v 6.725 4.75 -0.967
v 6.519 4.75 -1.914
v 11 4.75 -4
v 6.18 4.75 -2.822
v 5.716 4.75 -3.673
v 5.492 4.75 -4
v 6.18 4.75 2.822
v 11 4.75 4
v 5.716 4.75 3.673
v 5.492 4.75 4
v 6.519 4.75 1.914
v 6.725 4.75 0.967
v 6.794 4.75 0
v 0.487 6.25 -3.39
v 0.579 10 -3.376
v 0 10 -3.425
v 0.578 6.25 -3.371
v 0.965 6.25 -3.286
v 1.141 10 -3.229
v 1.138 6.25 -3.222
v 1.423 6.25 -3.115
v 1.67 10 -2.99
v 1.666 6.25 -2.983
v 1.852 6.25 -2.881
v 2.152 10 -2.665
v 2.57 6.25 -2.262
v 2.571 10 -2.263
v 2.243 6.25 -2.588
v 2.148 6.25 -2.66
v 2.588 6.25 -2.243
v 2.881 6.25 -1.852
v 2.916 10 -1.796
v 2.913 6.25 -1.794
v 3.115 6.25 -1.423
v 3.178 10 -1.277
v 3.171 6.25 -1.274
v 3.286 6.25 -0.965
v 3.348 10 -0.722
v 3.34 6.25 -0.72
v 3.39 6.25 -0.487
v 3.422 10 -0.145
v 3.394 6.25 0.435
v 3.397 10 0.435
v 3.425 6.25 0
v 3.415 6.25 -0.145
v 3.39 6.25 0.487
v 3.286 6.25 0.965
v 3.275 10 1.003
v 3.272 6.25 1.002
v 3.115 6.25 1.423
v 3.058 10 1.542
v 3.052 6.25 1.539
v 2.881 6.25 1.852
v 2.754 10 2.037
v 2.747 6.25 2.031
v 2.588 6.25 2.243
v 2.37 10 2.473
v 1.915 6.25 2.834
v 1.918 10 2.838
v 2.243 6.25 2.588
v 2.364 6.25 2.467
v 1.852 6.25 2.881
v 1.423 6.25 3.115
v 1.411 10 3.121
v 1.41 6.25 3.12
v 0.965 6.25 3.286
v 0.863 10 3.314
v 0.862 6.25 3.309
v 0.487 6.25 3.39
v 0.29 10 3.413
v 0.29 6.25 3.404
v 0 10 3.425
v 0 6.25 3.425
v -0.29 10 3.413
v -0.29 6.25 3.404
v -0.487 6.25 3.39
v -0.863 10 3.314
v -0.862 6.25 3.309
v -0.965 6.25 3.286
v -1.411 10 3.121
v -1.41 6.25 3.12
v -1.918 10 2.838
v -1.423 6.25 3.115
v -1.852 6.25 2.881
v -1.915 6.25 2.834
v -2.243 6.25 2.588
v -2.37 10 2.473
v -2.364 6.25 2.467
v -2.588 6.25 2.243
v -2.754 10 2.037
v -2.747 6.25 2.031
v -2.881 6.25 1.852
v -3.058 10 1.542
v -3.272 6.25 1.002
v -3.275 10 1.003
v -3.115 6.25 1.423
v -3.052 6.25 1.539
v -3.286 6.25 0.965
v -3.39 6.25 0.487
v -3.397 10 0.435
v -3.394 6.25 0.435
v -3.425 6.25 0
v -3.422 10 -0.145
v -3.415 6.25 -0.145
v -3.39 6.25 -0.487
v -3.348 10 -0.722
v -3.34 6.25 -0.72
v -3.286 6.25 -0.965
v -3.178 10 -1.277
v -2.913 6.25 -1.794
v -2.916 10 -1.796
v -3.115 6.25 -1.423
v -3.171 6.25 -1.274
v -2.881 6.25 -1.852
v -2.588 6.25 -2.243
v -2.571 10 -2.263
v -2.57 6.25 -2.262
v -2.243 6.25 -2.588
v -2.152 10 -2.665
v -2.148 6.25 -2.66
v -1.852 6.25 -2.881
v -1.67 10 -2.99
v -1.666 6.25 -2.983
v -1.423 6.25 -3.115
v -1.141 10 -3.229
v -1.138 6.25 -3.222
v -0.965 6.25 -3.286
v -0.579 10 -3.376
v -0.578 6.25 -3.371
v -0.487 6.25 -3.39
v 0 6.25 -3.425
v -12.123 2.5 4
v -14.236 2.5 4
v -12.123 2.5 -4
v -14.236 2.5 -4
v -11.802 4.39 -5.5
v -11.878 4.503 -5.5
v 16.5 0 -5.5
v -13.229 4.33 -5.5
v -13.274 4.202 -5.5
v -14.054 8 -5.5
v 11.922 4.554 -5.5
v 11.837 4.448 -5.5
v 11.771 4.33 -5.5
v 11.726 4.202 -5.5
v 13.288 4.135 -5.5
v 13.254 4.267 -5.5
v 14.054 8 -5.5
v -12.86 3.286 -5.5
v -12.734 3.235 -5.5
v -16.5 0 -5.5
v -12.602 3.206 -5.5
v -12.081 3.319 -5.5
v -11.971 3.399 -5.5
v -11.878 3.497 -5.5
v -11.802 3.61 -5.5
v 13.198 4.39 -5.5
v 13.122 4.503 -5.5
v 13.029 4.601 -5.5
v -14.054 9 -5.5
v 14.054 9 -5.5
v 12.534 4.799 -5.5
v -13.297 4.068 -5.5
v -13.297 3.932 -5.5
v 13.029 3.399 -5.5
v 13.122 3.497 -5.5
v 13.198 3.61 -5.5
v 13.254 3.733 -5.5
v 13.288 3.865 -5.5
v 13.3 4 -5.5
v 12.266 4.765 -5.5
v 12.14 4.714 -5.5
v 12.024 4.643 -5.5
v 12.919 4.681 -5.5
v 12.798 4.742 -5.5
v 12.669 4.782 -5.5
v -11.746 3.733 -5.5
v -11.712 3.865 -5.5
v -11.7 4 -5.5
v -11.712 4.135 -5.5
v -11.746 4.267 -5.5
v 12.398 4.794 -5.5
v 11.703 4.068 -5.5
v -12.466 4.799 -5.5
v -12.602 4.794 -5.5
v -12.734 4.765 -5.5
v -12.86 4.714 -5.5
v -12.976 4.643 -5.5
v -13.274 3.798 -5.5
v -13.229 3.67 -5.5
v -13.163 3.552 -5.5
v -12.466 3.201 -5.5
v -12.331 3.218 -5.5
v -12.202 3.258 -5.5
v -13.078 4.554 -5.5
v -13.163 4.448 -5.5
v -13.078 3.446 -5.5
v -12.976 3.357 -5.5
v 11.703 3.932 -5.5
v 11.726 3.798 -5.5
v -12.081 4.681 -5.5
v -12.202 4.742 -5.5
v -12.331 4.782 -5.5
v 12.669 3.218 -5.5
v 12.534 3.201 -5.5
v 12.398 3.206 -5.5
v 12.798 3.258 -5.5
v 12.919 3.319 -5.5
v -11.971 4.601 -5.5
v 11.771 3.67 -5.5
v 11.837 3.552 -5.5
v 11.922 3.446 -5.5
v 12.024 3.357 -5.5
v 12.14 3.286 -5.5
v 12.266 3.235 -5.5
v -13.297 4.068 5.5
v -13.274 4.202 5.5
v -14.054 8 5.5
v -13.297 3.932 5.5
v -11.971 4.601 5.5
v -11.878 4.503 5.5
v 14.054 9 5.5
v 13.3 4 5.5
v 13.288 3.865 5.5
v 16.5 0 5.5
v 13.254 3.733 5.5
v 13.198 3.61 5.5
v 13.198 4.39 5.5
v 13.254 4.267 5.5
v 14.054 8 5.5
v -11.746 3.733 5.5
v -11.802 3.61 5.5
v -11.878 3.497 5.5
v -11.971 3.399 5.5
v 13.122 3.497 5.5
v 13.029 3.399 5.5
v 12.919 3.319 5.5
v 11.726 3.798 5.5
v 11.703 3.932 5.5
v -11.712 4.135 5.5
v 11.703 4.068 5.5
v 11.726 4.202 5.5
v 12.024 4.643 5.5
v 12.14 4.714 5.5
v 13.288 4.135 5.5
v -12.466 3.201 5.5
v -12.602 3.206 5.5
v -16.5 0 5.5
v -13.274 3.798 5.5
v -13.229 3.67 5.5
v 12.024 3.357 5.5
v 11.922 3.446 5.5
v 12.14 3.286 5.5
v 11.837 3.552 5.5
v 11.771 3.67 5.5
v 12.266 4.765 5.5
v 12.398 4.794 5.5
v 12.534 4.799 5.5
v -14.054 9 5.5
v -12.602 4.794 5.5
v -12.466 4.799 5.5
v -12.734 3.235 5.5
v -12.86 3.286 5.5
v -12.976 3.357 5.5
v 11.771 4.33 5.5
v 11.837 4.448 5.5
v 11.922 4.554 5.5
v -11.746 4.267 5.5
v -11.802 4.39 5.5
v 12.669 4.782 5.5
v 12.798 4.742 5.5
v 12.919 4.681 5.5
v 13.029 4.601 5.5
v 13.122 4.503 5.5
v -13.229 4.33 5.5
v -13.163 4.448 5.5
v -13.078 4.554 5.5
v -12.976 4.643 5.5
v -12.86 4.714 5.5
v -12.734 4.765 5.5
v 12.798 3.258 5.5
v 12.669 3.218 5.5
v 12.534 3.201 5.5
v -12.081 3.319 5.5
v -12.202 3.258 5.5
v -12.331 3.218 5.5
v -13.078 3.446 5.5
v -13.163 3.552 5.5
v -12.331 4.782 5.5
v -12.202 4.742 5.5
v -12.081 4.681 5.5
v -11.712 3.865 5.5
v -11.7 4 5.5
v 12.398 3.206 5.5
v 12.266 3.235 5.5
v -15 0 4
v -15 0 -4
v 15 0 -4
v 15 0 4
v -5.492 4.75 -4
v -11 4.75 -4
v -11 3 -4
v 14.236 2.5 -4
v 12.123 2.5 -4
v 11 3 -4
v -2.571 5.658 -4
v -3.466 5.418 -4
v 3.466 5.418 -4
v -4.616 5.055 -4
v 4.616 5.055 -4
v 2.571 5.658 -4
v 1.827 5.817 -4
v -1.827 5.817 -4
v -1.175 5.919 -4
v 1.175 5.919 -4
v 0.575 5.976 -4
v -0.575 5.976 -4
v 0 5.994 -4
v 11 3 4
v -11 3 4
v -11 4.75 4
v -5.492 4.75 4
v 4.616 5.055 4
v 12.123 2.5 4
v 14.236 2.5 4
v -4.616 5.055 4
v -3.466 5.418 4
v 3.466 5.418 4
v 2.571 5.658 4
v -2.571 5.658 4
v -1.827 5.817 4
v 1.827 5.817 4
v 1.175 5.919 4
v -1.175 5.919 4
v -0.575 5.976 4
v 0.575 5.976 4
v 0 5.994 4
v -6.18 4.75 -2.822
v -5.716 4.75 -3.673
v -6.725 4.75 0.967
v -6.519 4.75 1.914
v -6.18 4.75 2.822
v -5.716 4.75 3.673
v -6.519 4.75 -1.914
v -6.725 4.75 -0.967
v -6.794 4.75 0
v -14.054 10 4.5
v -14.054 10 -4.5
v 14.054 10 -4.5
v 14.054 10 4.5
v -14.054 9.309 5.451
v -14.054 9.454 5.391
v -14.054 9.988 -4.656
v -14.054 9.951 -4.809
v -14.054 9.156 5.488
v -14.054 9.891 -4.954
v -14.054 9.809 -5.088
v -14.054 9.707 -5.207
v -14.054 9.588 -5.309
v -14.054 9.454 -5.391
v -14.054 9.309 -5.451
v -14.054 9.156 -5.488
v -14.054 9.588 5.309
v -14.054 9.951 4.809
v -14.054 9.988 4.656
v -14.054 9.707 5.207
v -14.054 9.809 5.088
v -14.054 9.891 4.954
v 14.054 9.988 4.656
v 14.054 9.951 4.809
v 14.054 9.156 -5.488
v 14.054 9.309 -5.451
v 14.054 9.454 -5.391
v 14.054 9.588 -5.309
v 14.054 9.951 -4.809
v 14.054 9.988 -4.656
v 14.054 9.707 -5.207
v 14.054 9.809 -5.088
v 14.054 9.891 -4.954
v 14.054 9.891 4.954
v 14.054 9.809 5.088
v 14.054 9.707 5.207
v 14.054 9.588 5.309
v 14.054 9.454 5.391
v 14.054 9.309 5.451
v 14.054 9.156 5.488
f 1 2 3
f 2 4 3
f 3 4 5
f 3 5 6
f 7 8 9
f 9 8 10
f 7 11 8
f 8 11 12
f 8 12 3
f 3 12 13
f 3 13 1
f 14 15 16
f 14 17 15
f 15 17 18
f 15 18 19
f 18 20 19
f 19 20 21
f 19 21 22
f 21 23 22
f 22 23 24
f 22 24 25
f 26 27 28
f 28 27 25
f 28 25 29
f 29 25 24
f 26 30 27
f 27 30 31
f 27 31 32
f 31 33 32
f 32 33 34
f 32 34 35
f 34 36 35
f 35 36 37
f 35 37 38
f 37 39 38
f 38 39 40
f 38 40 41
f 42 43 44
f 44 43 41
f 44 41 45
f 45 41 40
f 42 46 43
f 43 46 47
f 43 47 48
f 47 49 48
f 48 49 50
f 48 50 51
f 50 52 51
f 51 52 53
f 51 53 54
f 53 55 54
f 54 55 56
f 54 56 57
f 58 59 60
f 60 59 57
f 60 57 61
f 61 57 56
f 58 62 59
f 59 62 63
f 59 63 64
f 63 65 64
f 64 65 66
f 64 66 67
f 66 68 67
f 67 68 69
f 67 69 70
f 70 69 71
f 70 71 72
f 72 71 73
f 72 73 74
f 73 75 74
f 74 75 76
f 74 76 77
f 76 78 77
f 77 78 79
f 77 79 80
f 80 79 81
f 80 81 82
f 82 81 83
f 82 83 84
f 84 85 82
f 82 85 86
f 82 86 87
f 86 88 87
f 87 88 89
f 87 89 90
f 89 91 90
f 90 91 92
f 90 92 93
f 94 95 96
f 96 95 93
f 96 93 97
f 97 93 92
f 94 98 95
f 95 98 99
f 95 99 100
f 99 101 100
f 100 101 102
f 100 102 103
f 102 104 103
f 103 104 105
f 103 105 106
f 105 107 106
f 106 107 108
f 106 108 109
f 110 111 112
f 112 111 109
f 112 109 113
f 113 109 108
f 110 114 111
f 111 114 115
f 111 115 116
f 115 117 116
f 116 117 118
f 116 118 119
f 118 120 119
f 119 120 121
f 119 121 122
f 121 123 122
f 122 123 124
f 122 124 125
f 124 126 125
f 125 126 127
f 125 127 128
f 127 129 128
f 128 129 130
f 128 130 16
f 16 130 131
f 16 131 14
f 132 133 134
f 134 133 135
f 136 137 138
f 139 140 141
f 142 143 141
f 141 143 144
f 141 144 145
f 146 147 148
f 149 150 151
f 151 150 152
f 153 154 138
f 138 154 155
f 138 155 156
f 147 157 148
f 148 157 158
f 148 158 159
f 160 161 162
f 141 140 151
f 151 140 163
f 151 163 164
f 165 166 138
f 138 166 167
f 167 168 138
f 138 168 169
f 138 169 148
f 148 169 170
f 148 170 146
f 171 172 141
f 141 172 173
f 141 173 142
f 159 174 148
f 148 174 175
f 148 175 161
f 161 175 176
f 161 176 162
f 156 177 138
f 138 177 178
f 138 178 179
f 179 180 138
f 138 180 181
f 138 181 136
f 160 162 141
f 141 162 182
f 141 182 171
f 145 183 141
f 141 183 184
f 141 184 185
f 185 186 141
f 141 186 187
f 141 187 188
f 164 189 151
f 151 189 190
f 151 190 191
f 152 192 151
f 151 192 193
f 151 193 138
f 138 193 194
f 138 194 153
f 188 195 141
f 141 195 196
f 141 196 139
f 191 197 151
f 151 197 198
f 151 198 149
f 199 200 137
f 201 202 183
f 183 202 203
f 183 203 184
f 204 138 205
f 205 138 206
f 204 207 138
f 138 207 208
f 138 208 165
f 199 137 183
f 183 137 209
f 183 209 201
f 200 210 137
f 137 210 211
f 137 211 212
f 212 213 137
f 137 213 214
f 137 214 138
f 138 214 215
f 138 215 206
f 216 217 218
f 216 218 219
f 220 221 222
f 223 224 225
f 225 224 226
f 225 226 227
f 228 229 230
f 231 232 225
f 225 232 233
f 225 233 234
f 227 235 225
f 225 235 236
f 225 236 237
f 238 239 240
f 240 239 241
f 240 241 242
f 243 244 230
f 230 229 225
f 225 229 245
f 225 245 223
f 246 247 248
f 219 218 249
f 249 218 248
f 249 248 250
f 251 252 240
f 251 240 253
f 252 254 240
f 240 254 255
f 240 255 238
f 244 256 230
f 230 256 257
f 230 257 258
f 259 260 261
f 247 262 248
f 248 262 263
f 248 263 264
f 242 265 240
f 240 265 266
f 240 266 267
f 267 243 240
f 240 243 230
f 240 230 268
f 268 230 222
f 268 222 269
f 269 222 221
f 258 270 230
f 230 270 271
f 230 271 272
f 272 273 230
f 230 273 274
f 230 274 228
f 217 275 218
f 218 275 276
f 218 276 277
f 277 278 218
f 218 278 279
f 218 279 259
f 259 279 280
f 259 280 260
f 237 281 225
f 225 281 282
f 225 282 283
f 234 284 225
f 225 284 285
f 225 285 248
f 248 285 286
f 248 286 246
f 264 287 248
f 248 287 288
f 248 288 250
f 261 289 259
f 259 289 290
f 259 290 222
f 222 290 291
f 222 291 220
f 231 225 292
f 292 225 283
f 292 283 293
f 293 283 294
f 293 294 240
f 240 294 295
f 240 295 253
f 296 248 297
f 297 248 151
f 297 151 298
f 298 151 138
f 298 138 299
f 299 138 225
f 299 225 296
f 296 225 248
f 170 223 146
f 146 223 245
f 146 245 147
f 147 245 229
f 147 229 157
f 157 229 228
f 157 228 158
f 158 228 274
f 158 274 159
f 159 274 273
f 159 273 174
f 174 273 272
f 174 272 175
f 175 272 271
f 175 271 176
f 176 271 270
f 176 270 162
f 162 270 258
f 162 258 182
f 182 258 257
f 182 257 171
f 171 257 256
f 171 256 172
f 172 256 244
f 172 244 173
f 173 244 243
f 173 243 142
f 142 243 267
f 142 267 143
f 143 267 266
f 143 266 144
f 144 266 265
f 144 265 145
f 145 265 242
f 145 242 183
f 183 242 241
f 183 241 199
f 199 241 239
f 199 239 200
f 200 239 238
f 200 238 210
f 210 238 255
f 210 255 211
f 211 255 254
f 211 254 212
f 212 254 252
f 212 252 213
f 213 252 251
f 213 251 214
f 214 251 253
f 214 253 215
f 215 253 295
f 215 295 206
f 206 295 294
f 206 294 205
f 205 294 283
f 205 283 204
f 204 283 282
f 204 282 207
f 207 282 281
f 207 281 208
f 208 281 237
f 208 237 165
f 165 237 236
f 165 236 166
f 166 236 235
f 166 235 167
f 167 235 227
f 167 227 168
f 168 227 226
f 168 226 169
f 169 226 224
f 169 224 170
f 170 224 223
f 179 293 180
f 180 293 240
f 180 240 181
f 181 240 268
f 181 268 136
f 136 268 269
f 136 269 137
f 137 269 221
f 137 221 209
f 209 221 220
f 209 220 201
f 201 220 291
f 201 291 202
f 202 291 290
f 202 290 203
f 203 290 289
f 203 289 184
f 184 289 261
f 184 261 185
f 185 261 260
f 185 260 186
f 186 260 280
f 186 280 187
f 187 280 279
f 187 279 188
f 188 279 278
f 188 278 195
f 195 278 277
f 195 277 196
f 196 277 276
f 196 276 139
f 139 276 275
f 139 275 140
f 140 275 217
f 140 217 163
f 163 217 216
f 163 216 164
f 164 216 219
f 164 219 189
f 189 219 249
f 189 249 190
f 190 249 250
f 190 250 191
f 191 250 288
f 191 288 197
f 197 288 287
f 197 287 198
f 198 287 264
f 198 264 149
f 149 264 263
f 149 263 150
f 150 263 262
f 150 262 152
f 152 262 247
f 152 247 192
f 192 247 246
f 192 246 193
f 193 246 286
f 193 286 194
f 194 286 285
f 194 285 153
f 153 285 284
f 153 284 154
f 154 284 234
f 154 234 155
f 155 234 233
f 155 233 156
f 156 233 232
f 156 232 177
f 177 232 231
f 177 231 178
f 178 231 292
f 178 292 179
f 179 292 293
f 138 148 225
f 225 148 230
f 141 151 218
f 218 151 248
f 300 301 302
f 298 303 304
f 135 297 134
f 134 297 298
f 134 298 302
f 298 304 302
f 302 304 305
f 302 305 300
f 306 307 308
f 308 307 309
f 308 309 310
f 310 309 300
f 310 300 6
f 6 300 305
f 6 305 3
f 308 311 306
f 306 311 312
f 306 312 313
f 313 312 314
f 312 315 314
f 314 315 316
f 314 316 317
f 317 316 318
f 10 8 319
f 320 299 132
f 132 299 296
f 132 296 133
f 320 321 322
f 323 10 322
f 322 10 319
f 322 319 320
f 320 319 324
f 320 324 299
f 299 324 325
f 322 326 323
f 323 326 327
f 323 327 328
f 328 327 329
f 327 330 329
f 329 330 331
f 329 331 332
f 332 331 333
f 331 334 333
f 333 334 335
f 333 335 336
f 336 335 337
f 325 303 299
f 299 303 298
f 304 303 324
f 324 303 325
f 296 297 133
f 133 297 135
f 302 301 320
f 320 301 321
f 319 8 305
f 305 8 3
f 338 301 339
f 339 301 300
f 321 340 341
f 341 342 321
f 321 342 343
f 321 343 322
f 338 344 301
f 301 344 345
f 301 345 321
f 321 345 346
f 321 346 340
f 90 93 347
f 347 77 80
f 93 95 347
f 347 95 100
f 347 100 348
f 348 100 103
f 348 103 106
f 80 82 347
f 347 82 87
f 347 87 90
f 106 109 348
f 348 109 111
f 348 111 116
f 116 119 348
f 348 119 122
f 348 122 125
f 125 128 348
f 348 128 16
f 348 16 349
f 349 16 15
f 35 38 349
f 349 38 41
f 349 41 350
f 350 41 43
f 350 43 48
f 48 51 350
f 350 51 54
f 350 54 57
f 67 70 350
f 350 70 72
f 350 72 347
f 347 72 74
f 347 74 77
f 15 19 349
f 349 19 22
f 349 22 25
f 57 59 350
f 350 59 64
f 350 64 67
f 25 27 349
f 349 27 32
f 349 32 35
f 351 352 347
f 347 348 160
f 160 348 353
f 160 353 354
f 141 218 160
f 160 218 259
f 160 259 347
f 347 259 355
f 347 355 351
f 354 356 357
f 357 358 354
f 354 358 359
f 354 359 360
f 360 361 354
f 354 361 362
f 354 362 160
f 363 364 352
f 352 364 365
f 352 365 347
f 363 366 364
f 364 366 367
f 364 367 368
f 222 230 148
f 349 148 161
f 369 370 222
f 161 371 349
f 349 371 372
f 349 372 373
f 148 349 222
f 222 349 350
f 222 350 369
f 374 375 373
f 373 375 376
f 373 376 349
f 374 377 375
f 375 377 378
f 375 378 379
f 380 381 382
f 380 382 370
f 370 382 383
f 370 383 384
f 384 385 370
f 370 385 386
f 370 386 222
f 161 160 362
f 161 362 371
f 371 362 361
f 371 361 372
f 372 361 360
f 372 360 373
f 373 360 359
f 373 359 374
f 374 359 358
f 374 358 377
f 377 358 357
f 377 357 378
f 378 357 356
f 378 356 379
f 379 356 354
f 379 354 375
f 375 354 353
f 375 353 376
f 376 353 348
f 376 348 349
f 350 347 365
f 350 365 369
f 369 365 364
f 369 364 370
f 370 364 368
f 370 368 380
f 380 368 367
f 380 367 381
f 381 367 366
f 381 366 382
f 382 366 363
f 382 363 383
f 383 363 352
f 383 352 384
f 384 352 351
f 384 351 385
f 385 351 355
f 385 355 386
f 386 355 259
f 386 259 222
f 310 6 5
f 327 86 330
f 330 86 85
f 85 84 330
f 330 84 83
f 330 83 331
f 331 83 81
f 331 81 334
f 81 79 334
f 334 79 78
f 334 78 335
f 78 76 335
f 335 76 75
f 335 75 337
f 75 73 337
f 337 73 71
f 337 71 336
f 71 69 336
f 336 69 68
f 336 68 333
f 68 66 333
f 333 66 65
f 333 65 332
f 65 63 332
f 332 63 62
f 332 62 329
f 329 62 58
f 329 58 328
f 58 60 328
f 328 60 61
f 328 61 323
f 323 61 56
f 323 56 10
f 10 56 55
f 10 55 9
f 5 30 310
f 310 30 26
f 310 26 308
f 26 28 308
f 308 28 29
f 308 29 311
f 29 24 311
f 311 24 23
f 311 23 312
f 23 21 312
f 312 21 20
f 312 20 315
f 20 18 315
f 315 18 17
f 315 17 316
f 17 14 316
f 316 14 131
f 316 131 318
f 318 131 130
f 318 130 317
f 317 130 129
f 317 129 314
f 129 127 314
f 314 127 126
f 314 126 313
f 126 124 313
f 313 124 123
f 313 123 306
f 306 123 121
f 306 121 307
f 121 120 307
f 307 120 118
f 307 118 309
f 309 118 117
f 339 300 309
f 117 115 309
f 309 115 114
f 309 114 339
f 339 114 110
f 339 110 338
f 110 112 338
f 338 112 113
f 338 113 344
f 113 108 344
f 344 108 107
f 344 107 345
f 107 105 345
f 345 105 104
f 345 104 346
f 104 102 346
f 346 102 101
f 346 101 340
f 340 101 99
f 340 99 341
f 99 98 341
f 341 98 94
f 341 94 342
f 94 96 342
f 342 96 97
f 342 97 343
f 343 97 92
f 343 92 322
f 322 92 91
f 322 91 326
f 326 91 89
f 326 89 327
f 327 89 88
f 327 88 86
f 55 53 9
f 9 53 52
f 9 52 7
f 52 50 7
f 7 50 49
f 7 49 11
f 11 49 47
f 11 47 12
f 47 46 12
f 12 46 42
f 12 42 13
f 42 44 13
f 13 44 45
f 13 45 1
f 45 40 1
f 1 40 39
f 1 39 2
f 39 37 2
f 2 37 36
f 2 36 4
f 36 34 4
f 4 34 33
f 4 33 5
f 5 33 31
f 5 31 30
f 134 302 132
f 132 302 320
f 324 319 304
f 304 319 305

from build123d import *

# Parameters (mm, degrees)
SKETCH1_W                      = 33
SKETCH1_H                      = 11
SKETCH1_W_2                    = 30
SKETCH1_H_2                    = 8
BOSS_EXTRUDE1_DEPTH            = 8
SKETCH3_R                      = 0.8
CUT_EXTRUDE3_DEPTH             = 22.38340478
CUT_EXTRUDE5_REACH             = 21.144
SKETCH5_R                      = 3.425
CUT_EXTRUDE5_DIRECTION_2_DEPTH = 20.144189719
CUT_EXTRUDE4_DEPTH             = 22.38340478
CUT_EXTRUDE9_START             = -1.5
CUT_EXTRUDE9_DEPTH             = 8
SKETCH9_W                      = 22
SKETCH9_H                      = 8
CUT_EXTRUDE8_DEPTH             = 2.25
BOSS_EXTRUDE8_START            = 2
SKETCH12_W                     = 28.108309096
SKETCH12_H                     = 11
SKETCH12_R                     = 3.425
BOSS_EXTRUDE8_DEPTH            = 2
FILLET1_R                      = 1
CHAMFER1_SIZE                  = 1.5
CHAMFER1_SIZE_2                = 3.369055161
CHAMFER2_SIZE                  = 0.5
CHAMFER2_SIZE2                 = 1.123018387
CHAMFER3_SIZE                  = 0.5
CHAMFER3_SIZE2                 = 1.123018387


with BuildPart() as part:
    # Sketch1 → Boss-Extrude1 (new body)
    # profile 1 of 2: a face of its own
    with BuildSketch(Plane(origin=(0, 0, 0), x_dir=(1, 0, 0), z_dir=(0, 1, 0))):
        Rectangle(SKETCH1_W, SKETCH1_H)
        Rectangle(SKETCH1_W_2, SKETCH1_H_2, mode=Mode.SUBTRACT)
    # profile 2 of 2: a face of its own
    with BuildSketch(Plane(origin=(0, 0, 0), x_dir=(1, 0, 0), z_dir=(0, 1, 0))):
        Rectangle(SKETCH1_W_2, SKETCH1_H_2)
    extrude(amount=BOSS_EXTRUDE1_DEPTH)

    # Sketch3 → Cut-Extrude3 (cut, through all)
    with BuildSketch(Plane.XY.offset(5.5)):
        with Locations((-12.5, 4)):
            Circle(SKETCH3_R)
        with Locations((12.5, 4)):
            Circle(SKETCH3_R)
    extrude(amount=-CUT_EXTRUDE3_DEPTH, mode=Mode.SUBTRACT)

    # Sketch5 → Cut-Extrude5 (cut, up to next)
    with BuildSketch(Plane(origin=(0, 8, 0), x_dir=(1, 0, 0), z_dir=(0, 1, 0)), mode=Mode.PRIVATE) as cut_extrude5_sk1:
        with Locations(Location((0, 0, 0), (0, 0, 90))):
            Circle(SKETCH5_R)
    cut_extrude5_tool1 = extrude(cut_extrude5_sk1.sketch, amount=-CUT_EXTRUDE5_REACH, mode=Mode.PRIVATE) & part.part
    add(cut_extrude5_tool1.solids().sort_by_distance((0, 8, 0))[0], mode=Mode.SUBTRACT)

    # Sketch5 → Cut-Extrude5 direction 2 (cut)
    with BuildSketch(Plane(origin=(0, 8, 0), x_dir=(1, 0, 0), z_dir=(0, 1, 0))):
        with Locations(Location((0, 0, 0), (0, 0, 90))):
            Circle(SKETCH5_R)
    extrude(amount=CUT_EXTRUDE5_DIRECTION_2_DEPTH, mode=Mode.SUBTRACT)

    # Sketch4 → Cut-Extrude4 (cut, through all)
    with BuildSketch(Plane.XY.offset(5.5)):
        Polygon((-16.5, 0), (-14.054154548, 8), (-16.5, 8), align=None)
        Polygon((16.5, 0), (14.054154548, 8), (16.5, 8), align=None)
    extrude(amount=-CUT_EXTRUDE4_DEPTH, mode=Mode.SUBTRACT)

    # Sketch14 → Cut-Extrude9 (cut)
    with BuildSketch(Plane.XY.offset(5.5).offset(CUT_EXTRUDE9_START)):
        Polygon((-15, 0), (15, 0), (14.235673296, 2.5), (-14.235673296, 2.5), align=None)
    extrude(amount=-CUT_EXTRUDE9_DEPTH, mode=Mode.SUBTRACT)

    # Sketch9 → Cut-Extrude8 (cut)
    with BuildSketch(Plane.XZ.offset(-2.5)):
        Rectangle(SKETCH9_W, SKETCH9_H)
    extrude(amount=-CUT_EXTRUDE8_DEPTH, mode=Mode.SUBTRACT)

    # Sketch12 → Boss-Extrude8 (add)
    with BuildSketch(Plane(origin=(0, 8, 0), x_dir=(1, 0, 0), z_dir=(0, 1, 0)).offset(BOSS_EXTRUDE8_START)):
        Rectangle(SKETCH12_W, SKETCH12_H)
        with Locations(Location((0, 0, 0), (0, 0, 90))):
            Circle(SKETCH12_R, mode=Mode.SUBTRACT)
    extrude(amount=-BOSS_EXTRUDE8_DEPTH)

    # Fillet1
    fillet1_edges = [part.edges().sort_by_distance(p)[0] for p in [
        (0, 10, 5.5),
        (0, 10, -5.5),
    ]]
    fillet(fillet1_edges, radius=FILLET1_R)

    # Chamfer1
    # the kernel refuses this chamfer: 3.369055161, 1.5 mm, written as the material it takes off along each edge
    with BuildSketch(Plane(origin=(0, 4.75, 0), x_dir=(0, 0, -1), z_dir=(1, 0, 0))) as chamfer1_piece_1_section:
        Polygon((3.425, CHAMFER1_SIZE), (3.425 + CHAMFER1_SIZE_2, 0), (3.425, 0), align=None)
    chamfer1_piece_1 = revolve(axis=Axis((0, 4.75, 0), (0, 1, 0)), mode=Mode.PRIVATE)
    chamfer1_piece_1 = split(chamfer1_piece_1, bisect_by=Plane(origin=(-3.367570152, 6.000830153, 4), z_dir=(0, 0, -1)), keep=Keep.TOP, mode=Mode.PRIVATE)
    chamfer1_piece_1 = split(chamfer1_piece_1, bisect_by=Plane(origin=(-3.367570152, 6.000830153, -4), z_dir=(0, 0, 1)), keep=Keep.TOP, mode=Mode.PRIVATE)
    add(chamfer1_piece_1, mode=Mode.SUBTRACT)

    # Chamfer2
    chamfer2_edges = [part.edges().sort_by_distance(p)[0] for p in [
        (-11, 2.5, 0),
    ]]
    chamfer2_side = [part.faces().sort_by_distance(p)[0] for p in [
        (-11, 3.625, 0),
    ]]
    chamfer(chamfer2_edges, length=CHAMFER2_SIZE, length2=CHAMFER2_SIZE2, reference=chamfer2_side[0])

    # Chamfer3
    chamfer3_edges = [part.edges().sort_by_distance(p)[0] for p in [
        (11, 2.5, 0),
    ]]
    chamfer3_side = [part.faces().sort_by_distance(p)[0] for p in [
        (11, 3.625, 0),
    ]]
    chamfer(chamfer3_edges, length=CHAMFER3_SIZE, length2=CHAMFER3_SIZE2, reference=chamfer3_side[0])


solid = part.part
